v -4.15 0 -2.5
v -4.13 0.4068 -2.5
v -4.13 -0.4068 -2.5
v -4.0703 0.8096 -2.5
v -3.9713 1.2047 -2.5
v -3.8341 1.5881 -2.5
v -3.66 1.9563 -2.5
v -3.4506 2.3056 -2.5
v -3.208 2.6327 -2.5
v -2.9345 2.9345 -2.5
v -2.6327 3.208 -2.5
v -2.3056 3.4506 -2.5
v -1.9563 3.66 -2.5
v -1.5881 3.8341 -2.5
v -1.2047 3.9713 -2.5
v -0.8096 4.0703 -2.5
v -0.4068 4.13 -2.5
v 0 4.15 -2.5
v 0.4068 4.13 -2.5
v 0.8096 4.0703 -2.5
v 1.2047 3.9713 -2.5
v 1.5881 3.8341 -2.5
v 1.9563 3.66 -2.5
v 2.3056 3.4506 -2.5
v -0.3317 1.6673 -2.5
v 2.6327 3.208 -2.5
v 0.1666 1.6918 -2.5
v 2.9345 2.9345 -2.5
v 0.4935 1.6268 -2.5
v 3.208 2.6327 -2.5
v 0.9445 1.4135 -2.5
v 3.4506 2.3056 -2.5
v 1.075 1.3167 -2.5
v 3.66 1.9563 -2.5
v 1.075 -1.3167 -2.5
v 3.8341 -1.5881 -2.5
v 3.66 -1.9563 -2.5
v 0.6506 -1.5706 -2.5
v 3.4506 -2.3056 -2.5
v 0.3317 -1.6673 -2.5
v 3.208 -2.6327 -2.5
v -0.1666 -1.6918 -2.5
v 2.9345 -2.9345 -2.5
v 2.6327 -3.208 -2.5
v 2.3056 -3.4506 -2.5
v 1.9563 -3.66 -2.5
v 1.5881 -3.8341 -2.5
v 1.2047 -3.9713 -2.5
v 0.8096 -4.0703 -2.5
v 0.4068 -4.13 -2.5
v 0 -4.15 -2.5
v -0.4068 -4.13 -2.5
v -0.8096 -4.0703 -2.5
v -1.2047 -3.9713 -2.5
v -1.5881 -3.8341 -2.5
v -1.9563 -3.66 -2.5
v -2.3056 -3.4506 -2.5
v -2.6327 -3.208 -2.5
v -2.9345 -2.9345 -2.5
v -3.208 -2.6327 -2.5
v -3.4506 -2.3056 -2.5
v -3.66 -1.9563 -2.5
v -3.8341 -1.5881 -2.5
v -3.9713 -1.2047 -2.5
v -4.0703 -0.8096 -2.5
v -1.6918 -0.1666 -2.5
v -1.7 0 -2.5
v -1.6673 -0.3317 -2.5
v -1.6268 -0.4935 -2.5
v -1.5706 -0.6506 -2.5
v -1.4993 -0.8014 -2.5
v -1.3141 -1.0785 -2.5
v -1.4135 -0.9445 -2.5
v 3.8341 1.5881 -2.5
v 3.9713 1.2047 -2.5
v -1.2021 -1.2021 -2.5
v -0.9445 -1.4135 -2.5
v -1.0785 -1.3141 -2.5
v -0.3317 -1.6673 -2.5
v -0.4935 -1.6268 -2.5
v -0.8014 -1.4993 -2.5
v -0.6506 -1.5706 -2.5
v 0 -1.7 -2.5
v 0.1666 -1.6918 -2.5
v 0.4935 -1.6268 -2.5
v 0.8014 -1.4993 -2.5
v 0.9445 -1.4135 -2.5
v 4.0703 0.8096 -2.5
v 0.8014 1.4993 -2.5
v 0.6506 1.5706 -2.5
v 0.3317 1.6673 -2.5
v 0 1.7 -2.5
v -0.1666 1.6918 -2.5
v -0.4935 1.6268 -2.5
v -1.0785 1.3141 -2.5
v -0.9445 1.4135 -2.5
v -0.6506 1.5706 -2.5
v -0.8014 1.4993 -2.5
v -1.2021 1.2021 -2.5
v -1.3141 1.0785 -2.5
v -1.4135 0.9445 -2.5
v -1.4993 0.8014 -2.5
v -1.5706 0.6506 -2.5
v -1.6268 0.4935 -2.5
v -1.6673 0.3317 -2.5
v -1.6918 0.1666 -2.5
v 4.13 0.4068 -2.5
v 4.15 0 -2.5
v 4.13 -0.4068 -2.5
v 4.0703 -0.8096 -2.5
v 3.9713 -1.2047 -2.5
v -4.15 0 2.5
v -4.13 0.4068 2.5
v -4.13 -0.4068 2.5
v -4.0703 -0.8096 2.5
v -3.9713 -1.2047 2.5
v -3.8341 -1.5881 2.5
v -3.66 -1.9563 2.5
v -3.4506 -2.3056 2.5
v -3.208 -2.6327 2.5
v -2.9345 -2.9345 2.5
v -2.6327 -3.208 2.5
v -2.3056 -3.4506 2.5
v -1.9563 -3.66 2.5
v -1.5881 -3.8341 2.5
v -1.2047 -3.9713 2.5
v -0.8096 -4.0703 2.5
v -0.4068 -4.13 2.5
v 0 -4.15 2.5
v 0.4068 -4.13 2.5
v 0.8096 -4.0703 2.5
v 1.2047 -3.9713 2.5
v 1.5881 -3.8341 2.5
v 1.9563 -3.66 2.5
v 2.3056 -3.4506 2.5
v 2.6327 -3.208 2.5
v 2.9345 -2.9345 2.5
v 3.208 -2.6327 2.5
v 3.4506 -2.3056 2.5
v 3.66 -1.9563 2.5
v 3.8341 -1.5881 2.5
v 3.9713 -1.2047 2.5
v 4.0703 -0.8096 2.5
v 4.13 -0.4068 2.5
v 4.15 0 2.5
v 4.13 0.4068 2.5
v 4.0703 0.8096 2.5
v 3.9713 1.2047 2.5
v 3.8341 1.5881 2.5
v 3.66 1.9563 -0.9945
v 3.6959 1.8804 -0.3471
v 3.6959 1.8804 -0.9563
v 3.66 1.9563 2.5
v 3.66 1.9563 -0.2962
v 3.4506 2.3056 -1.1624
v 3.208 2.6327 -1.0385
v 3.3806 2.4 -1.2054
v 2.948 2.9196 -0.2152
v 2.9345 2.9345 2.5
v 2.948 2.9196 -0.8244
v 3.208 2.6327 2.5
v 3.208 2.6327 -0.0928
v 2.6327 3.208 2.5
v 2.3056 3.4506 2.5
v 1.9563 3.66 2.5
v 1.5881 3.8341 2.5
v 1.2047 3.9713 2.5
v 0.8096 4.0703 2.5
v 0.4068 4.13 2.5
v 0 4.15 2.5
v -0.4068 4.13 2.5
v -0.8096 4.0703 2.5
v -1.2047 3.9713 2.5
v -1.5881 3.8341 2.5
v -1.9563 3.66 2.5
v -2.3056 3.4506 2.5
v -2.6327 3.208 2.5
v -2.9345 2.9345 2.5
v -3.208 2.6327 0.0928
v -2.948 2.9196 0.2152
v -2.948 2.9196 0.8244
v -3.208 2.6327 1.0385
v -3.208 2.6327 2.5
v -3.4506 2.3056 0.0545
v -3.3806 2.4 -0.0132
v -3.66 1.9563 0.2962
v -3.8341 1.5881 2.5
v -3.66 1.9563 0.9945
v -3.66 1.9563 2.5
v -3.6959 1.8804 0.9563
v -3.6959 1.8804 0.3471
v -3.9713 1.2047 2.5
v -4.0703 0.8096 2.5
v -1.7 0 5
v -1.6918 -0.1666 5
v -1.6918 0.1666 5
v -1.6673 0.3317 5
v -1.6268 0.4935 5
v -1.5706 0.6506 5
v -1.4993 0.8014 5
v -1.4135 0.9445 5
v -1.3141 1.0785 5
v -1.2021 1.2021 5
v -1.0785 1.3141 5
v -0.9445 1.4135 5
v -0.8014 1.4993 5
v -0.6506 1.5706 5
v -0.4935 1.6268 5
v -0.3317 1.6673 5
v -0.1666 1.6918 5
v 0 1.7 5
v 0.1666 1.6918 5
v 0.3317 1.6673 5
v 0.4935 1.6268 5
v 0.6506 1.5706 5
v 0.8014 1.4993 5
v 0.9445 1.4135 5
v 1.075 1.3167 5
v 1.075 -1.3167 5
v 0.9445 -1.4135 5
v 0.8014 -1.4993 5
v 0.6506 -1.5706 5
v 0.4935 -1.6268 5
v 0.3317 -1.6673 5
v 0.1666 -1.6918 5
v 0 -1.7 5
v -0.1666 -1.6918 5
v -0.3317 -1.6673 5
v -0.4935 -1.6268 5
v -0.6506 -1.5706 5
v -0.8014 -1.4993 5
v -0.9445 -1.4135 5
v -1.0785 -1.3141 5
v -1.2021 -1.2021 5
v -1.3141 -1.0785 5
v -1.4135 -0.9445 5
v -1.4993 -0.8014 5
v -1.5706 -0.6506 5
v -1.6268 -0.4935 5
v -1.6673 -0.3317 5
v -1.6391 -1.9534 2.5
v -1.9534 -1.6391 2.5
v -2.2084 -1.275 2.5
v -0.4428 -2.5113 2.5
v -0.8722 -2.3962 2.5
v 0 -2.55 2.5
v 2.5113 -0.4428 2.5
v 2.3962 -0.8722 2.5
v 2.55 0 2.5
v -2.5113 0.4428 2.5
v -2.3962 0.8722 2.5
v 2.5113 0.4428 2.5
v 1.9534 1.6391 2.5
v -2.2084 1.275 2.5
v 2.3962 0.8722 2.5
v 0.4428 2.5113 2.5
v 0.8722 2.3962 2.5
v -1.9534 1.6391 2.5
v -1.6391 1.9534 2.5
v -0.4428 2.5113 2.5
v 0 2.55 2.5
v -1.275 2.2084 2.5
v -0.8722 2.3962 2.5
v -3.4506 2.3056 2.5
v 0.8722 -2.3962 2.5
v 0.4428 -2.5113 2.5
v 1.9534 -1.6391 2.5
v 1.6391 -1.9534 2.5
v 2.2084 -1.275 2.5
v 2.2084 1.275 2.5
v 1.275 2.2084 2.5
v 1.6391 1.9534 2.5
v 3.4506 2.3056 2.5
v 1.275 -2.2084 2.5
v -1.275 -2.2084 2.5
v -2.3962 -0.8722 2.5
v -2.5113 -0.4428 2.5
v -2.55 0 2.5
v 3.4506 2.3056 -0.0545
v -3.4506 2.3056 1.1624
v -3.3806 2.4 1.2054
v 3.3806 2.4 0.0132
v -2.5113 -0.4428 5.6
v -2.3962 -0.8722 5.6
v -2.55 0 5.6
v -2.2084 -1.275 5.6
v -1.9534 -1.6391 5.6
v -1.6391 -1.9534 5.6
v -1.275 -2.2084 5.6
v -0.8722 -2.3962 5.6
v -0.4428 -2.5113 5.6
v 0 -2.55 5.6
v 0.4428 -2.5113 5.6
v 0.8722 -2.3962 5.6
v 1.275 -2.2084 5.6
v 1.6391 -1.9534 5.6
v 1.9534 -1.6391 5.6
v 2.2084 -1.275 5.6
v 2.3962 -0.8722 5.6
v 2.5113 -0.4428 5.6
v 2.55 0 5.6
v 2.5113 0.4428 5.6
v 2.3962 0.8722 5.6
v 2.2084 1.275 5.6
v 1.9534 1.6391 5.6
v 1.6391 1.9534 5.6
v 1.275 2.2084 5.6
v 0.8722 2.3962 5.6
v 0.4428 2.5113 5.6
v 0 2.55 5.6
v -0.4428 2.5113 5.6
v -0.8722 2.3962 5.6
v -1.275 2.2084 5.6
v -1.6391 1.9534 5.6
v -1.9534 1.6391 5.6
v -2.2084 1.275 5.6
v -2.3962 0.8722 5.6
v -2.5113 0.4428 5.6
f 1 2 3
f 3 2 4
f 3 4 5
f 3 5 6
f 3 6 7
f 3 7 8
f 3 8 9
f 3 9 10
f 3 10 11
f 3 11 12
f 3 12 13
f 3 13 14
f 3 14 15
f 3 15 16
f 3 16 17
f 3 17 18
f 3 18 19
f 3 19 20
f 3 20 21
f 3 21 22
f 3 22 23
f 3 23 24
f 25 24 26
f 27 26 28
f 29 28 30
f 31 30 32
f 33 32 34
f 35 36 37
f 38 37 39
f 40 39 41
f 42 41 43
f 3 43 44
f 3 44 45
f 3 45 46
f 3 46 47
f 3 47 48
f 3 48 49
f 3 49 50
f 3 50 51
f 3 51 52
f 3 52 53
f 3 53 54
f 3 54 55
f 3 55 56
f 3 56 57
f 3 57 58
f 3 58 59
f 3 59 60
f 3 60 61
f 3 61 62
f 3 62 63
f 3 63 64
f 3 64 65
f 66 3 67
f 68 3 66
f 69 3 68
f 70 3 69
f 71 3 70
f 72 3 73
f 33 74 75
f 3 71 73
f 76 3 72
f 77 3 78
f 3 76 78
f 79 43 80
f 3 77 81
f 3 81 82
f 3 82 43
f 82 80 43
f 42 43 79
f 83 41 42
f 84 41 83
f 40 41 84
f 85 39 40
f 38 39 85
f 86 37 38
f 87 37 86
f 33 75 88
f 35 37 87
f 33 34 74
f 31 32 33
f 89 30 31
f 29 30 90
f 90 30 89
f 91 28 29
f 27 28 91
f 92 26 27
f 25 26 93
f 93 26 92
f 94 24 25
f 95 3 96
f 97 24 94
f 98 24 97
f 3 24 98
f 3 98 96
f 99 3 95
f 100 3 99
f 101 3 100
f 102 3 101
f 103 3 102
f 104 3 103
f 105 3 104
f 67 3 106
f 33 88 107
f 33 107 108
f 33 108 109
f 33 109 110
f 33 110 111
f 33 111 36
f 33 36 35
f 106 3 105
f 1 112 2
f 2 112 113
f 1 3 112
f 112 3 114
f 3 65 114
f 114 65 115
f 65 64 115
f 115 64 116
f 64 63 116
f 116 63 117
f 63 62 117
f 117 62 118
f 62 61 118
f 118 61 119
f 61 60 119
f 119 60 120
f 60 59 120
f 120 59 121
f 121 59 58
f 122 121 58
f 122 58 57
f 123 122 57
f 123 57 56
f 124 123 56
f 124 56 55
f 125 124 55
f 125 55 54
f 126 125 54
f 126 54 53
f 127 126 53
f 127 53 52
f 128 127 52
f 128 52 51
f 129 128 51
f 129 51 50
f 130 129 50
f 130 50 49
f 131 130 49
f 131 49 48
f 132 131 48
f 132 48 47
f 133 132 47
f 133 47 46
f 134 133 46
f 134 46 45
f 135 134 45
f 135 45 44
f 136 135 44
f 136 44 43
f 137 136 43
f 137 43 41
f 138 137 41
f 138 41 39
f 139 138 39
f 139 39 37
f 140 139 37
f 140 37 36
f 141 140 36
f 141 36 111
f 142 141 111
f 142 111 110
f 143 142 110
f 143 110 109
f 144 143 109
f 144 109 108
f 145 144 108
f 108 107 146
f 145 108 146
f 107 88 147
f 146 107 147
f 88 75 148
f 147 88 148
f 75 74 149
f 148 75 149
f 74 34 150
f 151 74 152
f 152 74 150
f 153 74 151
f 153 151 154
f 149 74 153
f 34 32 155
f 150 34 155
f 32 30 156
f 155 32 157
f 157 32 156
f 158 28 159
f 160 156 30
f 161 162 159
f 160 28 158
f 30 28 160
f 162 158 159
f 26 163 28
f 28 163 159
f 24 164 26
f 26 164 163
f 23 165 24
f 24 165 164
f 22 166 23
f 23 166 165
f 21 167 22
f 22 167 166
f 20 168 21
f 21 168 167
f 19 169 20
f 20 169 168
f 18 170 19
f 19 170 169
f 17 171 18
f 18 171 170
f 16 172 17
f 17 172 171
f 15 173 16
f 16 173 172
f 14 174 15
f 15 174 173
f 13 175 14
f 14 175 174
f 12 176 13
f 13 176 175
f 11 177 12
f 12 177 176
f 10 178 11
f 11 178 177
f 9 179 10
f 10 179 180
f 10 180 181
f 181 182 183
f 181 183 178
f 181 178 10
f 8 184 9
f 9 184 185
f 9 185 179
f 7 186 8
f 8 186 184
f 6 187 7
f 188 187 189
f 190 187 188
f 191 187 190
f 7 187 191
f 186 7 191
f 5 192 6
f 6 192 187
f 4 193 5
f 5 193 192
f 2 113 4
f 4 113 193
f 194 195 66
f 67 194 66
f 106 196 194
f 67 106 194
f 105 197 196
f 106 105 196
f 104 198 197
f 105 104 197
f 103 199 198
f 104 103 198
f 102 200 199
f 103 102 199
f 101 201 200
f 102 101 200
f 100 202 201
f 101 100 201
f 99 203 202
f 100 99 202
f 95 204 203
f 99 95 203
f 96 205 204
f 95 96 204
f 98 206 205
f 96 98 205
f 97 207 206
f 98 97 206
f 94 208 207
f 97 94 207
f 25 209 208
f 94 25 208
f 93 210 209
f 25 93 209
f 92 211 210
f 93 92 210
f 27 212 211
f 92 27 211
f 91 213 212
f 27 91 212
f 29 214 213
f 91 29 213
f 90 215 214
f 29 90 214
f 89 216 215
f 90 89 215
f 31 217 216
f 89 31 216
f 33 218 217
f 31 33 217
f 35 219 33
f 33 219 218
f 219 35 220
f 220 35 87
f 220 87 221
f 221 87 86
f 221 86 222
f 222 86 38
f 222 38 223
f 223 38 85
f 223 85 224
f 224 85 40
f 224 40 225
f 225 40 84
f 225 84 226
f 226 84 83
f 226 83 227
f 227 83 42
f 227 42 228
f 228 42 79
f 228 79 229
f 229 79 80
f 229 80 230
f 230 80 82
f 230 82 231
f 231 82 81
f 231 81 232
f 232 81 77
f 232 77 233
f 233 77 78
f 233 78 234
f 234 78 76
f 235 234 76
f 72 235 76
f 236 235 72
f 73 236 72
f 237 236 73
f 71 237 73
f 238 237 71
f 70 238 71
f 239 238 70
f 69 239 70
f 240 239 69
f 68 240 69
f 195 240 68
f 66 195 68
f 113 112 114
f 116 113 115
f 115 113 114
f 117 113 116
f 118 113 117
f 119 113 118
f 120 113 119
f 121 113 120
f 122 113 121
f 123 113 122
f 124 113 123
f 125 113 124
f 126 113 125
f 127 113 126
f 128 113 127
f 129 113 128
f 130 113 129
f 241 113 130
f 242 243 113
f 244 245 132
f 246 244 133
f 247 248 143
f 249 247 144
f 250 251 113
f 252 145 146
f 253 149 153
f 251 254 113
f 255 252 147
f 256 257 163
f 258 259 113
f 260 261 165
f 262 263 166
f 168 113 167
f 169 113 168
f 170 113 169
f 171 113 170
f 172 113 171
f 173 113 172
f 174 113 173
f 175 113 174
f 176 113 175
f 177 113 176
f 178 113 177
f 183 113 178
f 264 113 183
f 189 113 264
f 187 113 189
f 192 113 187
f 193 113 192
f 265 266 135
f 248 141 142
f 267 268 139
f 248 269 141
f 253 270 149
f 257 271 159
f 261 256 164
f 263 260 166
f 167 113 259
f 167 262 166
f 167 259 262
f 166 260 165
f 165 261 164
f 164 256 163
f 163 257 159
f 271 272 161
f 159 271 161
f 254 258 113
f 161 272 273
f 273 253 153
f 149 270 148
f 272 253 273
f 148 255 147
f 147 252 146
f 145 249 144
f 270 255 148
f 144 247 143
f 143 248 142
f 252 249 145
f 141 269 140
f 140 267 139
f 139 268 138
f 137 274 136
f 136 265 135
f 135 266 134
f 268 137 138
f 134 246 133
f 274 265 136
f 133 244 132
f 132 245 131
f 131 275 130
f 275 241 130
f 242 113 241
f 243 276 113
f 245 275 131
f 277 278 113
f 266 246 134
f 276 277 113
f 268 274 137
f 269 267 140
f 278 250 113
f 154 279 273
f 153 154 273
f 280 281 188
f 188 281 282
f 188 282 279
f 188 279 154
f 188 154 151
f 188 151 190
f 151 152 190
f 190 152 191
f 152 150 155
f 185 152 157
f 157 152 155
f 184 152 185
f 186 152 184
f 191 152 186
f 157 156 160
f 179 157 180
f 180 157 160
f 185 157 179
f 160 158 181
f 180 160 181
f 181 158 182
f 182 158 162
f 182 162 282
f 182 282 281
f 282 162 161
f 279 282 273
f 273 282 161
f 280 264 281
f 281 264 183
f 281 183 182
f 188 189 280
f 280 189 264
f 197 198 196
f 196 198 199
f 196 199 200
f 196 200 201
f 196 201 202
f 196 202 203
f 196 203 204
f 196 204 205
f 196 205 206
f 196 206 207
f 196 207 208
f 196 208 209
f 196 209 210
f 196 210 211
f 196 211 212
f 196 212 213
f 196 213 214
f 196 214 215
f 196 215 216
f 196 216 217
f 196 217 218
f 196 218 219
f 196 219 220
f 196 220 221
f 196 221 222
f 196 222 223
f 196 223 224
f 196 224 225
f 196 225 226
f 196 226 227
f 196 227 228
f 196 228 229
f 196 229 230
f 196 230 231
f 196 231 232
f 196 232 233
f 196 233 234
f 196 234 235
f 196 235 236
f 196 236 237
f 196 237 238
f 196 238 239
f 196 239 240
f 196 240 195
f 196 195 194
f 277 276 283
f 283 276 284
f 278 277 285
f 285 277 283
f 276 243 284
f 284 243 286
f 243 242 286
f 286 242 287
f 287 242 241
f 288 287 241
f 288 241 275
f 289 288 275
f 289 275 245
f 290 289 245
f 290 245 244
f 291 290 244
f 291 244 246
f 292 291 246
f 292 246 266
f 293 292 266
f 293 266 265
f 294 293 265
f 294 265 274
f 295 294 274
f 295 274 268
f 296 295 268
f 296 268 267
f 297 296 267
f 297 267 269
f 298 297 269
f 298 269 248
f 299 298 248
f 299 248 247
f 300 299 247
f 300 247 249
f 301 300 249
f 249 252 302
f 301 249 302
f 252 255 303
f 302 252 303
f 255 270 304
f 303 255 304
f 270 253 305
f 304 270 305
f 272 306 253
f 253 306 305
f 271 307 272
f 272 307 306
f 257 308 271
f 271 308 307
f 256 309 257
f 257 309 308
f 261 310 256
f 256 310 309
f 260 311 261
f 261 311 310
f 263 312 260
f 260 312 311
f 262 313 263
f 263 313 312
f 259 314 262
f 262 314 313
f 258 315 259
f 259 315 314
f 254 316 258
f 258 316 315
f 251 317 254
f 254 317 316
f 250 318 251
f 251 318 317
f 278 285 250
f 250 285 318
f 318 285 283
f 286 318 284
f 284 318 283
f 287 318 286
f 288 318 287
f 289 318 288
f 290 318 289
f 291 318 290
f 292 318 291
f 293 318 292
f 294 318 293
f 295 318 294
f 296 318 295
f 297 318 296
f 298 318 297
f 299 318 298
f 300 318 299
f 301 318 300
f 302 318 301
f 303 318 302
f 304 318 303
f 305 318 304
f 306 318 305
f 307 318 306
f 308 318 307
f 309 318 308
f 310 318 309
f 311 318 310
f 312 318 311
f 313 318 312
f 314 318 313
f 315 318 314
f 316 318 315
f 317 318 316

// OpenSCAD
module d_shaft(){
	difference(){
		cylinder(r=3.4/2, h=10, center=true, $fn=64);
		// d shaped shaft
		translate([3.4/2,0,-7.5/2])
			cube([1.25,3,20], center=true);
	}
}


module threadwheel() {
	difference(){
		union(){
			cylinder(r=8.3/2, h=5, center=true, $fn=64);
			translate([0,0,1.55])
				cylinder(r=5.1/2, h=5+3.1, center=true, $fn=36);
		}
	d_shaft();
	rotate([0,100,0]) translate([0,2.4,0])
		cylinder(r=.6, h=30, center=true, $fn=6);
	}
}


threadwheel();
